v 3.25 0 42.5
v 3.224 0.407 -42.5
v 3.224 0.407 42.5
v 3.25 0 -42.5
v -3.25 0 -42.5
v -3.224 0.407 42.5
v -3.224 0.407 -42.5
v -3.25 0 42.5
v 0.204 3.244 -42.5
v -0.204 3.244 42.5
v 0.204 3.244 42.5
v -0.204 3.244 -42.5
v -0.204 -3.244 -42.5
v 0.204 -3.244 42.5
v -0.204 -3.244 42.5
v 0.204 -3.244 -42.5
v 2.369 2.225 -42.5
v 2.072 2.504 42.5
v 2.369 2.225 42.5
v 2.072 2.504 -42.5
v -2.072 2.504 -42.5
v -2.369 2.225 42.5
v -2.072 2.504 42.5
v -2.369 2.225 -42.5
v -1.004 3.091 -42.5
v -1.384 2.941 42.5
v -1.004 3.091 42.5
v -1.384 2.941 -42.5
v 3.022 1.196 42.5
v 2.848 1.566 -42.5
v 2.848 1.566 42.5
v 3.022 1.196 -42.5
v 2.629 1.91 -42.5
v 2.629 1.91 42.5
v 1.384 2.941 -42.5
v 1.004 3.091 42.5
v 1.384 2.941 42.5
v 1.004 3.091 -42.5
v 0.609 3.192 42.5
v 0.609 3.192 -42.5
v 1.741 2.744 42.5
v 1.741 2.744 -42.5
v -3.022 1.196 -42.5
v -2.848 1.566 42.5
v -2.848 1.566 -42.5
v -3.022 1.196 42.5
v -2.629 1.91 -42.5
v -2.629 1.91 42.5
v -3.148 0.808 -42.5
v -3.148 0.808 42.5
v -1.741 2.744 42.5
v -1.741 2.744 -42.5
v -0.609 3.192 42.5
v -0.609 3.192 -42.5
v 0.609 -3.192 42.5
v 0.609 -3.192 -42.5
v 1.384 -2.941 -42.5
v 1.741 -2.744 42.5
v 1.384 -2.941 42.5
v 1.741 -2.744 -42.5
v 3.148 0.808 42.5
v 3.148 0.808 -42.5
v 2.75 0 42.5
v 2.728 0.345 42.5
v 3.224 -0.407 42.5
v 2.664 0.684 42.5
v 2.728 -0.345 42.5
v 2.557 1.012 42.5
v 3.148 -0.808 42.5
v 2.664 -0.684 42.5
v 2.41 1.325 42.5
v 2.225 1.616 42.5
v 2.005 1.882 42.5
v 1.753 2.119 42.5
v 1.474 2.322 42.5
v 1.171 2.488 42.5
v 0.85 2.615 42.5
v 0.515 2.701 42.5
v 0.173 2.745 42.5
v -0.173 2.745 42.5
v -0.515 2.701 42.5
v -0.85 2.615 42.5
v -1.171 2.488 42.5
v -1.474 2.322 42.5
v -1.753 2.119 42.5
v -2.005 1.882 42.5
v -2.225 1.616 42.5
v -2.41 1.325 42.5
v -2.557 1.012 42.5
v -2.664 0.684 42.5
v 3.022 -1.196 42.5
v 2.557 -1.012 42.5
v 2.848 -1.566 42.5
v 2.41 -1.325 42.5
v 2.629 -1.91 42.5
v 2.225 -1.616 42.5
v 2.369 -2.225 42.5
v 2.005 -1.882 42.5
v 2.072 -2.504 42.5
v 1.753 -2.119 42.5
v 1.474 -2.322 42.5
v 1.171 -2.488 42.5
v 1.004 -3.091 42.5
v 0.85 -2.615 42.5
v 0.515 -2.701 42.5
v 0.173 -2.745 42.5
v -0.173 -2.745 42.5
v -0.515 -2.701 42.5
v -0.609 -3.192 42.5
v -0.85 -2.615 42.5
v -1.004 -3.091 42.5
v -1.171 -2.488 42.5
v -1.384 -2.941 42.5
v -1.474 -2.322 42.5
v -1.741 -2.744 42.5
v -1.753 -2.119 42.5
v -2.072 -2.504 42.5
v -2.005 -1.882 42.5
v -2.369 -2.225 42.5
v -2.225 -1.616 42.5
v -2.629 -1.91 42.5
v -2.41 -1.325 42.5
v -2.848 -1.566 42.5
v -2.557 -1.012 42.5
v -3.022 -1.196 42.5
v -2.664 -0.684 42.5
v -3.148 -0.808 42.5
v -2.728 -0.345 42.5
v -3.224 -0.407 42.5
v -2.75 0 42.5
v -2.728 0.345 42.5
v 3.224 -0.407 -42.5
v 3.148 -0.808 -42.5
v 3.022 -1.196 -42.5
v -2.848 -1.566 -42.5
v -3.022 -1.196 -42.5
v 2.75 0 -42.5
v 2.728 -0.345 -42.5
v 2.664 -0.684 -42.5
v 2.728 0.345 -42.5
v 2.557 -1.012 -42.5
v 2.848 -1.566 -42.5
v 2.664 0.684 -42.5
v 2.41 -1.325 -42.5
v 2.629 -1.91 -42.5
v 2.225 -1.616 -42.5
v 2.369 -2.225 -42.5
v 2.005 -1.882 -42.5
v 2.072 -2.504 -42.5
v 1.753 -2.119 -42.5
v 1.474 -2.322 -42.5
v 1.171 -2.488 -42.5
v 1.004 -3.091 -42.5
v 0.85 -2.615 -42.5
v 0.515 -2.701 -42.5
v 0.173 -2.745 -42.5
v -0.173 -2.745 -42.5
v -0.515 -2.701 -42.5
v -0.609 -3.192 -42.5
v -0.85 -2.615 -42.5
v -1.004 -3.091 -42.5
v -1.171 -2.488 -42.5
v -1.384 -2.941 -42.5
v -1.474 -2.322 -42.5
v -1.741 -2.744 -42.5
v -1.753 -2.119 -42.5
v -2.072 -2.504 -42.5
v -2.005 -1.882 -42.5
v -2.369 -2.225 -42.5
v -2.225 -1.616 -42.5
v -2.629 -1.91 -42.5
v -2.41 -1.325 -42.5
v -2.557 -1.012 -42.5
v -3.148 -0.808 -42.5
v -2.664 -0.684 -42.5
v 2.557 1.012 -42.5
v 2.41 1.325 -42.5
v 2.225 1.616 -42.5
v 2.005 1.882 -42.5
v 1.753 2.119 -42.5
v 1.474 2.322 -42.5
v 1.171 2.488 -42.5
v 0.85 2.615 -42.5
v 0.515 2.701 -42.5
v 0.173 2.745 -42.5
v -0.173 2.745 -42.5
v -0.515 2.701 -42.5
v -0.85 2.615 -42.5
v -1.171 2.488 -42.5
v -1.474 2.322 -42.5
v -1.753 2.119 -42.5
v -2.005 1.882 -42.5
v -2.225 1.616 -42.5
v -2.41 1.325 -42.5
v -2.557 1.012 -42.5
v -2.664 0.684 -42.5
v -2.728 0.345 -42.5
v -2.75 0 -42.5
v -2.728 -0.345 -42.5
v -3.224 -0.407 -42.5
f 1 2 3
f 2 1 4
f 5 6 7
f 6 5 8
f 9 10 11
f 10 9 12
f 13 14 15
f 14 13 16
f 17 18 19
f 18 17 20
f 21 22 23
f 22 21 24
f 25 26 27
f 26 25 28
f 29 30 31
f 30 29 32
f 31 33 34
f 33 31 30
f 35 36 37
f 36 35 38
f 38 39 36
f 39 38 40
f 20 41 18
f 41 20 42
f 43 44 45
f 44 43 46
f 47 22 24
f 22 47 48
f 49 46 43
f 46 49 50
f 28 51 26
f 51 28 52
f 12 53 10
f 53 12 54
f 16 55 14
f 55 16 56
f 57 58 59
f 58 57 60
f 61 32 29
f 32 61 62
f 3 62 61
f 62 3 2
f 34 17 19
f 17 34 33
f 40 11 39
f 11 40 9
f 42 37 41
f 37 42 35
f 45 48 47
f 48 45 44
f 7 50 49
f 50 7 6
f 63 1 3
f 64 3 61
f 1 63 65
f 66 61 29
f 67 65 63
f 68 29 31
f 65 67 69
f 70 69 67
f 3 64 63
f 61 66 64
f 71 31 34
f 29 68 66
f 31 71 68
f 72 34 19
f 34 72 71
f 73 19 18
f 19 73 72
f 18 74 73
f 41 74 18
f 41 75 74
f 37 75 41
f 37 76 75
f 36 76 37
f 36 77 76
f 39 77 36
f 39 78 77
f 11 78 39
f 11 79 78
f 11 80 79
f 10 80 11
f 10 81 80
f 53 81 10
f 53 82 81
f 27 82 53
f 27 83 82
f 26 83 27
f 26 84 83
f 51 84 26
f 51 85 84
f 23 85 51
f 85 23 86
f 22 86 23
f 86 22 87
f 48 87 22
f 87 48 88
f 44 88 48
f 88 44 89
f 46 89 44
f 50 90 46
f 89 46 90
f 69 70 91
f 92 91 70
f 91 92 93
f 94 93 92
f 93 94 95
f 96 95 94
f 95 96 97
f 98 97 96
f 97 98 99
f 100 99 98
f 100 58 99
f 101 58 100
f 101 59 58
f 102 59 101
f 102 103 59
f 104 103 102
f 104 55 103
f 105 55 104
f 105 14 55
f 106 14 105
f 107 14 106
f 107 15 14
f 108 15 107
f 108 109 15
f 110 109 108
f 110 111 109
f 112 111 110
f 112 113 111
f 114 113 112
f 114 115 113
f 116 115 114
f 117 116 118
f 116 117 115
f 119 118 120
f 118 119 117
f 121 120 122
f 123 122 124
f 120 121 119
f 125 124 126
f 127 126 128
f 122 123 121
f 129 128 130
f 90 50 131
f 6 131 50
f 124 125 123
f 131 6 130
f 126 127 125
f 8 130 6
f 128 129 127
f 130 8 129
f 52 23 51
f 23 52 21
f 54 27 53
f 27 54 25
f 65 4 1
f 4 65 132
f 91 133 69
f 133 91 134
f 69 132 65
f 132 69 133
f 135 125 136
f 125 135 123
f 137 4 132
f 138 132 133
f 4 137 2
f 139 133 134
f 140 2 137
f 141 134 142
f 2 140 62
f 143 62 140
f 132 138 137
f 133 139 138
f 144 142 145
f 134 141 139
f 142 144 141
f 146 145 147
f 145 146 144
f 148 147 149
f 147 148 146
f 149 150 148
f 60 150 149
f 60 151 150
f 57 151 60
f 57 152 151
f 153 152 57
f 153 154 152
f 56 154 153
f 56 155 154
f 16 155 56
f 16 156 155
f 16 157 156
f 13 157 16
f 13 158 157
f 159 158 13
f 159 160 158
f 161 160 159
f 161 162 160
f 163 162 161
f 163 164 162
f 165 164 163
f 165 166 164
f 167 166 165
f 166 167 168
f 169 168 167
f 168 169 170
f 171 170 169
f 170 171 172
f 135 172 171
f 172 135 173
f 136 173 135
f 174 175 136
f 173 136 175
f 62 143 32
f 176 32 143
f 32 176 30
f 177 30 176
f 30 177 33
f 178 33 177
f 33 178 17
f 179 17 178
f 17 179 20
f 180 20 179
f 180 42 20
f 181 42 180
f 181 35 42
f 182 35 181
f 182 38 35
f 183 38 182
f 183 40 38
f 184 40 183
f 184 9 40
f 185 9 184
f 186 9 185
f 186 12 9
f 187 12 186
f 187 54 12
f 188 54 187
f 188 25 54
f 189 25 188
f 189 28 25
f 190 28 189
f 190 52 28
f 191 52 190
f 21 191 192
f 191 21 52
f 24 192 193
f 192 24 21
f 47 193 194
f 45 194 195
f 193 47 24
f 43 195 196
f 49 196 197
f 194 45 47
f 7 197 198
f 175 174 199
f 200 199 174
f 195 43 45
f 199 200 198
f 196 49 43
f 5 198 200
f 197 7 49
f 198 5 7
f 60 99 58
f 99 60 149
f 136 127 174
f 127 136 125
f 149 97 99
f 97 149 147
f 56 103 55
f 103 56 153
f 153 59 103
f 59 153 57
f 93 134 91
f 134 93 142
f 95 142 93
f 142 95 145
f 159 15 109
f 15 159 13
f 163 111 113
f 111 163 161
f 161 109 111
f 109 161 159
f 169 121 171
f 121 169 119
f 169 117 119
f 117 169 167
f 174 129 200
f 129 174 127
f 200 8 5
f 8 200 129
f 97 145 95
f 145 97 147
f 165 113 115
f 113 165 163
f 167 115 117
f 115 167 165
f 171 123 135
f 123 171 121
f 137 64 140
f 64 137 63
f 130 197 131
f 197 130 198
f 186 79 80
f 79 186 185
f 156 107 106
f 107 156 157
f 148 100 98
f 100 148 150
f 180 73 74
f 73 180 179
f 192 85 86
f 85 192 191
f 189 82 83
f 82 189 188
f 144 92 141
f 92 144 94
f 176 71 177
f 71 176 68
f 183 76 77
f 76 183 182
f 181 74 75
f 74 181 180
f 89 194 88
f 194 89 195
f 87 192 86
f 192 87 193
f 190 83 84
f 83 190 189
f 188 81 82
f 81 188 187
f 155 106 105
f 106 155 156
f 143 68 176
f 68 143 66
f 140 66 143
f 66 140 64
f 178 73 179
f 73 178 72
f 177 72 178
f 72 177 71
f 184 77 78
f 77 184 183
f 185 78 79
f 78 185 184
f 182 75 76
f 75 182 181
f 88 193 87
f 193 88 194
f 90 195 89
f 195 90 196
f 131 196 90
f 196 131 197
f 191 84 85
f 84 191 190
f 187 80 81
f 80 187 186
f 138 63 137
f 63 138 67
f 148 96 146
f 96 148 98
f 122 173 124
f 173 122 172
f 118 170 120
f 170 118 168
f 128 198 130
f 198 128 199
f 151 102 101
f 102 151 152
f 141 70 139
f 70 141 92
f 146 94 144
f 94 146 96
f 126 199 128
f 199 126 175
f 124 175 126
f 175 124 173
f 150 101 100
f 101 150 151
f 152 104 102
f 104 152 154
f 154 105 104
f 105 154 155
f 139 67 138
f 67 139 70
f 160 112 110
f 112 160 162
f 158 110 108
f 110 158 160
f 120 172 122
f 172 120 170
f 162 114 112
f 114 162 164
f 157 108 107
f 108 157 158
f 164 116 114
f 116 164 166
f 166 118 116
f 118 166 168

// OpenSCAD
$fn = 50;


difference() {
	union() {
		translate(v = [0, 0, -42.5000000000]) {
			cylinder(h = 85, r = 3.2500000000);
		}
	}
	union() {
		translate(v = [0, 0, -100.0000000000]) {
			cylinder(h = 200, r = 2.7500000000);
		}
	}
}
